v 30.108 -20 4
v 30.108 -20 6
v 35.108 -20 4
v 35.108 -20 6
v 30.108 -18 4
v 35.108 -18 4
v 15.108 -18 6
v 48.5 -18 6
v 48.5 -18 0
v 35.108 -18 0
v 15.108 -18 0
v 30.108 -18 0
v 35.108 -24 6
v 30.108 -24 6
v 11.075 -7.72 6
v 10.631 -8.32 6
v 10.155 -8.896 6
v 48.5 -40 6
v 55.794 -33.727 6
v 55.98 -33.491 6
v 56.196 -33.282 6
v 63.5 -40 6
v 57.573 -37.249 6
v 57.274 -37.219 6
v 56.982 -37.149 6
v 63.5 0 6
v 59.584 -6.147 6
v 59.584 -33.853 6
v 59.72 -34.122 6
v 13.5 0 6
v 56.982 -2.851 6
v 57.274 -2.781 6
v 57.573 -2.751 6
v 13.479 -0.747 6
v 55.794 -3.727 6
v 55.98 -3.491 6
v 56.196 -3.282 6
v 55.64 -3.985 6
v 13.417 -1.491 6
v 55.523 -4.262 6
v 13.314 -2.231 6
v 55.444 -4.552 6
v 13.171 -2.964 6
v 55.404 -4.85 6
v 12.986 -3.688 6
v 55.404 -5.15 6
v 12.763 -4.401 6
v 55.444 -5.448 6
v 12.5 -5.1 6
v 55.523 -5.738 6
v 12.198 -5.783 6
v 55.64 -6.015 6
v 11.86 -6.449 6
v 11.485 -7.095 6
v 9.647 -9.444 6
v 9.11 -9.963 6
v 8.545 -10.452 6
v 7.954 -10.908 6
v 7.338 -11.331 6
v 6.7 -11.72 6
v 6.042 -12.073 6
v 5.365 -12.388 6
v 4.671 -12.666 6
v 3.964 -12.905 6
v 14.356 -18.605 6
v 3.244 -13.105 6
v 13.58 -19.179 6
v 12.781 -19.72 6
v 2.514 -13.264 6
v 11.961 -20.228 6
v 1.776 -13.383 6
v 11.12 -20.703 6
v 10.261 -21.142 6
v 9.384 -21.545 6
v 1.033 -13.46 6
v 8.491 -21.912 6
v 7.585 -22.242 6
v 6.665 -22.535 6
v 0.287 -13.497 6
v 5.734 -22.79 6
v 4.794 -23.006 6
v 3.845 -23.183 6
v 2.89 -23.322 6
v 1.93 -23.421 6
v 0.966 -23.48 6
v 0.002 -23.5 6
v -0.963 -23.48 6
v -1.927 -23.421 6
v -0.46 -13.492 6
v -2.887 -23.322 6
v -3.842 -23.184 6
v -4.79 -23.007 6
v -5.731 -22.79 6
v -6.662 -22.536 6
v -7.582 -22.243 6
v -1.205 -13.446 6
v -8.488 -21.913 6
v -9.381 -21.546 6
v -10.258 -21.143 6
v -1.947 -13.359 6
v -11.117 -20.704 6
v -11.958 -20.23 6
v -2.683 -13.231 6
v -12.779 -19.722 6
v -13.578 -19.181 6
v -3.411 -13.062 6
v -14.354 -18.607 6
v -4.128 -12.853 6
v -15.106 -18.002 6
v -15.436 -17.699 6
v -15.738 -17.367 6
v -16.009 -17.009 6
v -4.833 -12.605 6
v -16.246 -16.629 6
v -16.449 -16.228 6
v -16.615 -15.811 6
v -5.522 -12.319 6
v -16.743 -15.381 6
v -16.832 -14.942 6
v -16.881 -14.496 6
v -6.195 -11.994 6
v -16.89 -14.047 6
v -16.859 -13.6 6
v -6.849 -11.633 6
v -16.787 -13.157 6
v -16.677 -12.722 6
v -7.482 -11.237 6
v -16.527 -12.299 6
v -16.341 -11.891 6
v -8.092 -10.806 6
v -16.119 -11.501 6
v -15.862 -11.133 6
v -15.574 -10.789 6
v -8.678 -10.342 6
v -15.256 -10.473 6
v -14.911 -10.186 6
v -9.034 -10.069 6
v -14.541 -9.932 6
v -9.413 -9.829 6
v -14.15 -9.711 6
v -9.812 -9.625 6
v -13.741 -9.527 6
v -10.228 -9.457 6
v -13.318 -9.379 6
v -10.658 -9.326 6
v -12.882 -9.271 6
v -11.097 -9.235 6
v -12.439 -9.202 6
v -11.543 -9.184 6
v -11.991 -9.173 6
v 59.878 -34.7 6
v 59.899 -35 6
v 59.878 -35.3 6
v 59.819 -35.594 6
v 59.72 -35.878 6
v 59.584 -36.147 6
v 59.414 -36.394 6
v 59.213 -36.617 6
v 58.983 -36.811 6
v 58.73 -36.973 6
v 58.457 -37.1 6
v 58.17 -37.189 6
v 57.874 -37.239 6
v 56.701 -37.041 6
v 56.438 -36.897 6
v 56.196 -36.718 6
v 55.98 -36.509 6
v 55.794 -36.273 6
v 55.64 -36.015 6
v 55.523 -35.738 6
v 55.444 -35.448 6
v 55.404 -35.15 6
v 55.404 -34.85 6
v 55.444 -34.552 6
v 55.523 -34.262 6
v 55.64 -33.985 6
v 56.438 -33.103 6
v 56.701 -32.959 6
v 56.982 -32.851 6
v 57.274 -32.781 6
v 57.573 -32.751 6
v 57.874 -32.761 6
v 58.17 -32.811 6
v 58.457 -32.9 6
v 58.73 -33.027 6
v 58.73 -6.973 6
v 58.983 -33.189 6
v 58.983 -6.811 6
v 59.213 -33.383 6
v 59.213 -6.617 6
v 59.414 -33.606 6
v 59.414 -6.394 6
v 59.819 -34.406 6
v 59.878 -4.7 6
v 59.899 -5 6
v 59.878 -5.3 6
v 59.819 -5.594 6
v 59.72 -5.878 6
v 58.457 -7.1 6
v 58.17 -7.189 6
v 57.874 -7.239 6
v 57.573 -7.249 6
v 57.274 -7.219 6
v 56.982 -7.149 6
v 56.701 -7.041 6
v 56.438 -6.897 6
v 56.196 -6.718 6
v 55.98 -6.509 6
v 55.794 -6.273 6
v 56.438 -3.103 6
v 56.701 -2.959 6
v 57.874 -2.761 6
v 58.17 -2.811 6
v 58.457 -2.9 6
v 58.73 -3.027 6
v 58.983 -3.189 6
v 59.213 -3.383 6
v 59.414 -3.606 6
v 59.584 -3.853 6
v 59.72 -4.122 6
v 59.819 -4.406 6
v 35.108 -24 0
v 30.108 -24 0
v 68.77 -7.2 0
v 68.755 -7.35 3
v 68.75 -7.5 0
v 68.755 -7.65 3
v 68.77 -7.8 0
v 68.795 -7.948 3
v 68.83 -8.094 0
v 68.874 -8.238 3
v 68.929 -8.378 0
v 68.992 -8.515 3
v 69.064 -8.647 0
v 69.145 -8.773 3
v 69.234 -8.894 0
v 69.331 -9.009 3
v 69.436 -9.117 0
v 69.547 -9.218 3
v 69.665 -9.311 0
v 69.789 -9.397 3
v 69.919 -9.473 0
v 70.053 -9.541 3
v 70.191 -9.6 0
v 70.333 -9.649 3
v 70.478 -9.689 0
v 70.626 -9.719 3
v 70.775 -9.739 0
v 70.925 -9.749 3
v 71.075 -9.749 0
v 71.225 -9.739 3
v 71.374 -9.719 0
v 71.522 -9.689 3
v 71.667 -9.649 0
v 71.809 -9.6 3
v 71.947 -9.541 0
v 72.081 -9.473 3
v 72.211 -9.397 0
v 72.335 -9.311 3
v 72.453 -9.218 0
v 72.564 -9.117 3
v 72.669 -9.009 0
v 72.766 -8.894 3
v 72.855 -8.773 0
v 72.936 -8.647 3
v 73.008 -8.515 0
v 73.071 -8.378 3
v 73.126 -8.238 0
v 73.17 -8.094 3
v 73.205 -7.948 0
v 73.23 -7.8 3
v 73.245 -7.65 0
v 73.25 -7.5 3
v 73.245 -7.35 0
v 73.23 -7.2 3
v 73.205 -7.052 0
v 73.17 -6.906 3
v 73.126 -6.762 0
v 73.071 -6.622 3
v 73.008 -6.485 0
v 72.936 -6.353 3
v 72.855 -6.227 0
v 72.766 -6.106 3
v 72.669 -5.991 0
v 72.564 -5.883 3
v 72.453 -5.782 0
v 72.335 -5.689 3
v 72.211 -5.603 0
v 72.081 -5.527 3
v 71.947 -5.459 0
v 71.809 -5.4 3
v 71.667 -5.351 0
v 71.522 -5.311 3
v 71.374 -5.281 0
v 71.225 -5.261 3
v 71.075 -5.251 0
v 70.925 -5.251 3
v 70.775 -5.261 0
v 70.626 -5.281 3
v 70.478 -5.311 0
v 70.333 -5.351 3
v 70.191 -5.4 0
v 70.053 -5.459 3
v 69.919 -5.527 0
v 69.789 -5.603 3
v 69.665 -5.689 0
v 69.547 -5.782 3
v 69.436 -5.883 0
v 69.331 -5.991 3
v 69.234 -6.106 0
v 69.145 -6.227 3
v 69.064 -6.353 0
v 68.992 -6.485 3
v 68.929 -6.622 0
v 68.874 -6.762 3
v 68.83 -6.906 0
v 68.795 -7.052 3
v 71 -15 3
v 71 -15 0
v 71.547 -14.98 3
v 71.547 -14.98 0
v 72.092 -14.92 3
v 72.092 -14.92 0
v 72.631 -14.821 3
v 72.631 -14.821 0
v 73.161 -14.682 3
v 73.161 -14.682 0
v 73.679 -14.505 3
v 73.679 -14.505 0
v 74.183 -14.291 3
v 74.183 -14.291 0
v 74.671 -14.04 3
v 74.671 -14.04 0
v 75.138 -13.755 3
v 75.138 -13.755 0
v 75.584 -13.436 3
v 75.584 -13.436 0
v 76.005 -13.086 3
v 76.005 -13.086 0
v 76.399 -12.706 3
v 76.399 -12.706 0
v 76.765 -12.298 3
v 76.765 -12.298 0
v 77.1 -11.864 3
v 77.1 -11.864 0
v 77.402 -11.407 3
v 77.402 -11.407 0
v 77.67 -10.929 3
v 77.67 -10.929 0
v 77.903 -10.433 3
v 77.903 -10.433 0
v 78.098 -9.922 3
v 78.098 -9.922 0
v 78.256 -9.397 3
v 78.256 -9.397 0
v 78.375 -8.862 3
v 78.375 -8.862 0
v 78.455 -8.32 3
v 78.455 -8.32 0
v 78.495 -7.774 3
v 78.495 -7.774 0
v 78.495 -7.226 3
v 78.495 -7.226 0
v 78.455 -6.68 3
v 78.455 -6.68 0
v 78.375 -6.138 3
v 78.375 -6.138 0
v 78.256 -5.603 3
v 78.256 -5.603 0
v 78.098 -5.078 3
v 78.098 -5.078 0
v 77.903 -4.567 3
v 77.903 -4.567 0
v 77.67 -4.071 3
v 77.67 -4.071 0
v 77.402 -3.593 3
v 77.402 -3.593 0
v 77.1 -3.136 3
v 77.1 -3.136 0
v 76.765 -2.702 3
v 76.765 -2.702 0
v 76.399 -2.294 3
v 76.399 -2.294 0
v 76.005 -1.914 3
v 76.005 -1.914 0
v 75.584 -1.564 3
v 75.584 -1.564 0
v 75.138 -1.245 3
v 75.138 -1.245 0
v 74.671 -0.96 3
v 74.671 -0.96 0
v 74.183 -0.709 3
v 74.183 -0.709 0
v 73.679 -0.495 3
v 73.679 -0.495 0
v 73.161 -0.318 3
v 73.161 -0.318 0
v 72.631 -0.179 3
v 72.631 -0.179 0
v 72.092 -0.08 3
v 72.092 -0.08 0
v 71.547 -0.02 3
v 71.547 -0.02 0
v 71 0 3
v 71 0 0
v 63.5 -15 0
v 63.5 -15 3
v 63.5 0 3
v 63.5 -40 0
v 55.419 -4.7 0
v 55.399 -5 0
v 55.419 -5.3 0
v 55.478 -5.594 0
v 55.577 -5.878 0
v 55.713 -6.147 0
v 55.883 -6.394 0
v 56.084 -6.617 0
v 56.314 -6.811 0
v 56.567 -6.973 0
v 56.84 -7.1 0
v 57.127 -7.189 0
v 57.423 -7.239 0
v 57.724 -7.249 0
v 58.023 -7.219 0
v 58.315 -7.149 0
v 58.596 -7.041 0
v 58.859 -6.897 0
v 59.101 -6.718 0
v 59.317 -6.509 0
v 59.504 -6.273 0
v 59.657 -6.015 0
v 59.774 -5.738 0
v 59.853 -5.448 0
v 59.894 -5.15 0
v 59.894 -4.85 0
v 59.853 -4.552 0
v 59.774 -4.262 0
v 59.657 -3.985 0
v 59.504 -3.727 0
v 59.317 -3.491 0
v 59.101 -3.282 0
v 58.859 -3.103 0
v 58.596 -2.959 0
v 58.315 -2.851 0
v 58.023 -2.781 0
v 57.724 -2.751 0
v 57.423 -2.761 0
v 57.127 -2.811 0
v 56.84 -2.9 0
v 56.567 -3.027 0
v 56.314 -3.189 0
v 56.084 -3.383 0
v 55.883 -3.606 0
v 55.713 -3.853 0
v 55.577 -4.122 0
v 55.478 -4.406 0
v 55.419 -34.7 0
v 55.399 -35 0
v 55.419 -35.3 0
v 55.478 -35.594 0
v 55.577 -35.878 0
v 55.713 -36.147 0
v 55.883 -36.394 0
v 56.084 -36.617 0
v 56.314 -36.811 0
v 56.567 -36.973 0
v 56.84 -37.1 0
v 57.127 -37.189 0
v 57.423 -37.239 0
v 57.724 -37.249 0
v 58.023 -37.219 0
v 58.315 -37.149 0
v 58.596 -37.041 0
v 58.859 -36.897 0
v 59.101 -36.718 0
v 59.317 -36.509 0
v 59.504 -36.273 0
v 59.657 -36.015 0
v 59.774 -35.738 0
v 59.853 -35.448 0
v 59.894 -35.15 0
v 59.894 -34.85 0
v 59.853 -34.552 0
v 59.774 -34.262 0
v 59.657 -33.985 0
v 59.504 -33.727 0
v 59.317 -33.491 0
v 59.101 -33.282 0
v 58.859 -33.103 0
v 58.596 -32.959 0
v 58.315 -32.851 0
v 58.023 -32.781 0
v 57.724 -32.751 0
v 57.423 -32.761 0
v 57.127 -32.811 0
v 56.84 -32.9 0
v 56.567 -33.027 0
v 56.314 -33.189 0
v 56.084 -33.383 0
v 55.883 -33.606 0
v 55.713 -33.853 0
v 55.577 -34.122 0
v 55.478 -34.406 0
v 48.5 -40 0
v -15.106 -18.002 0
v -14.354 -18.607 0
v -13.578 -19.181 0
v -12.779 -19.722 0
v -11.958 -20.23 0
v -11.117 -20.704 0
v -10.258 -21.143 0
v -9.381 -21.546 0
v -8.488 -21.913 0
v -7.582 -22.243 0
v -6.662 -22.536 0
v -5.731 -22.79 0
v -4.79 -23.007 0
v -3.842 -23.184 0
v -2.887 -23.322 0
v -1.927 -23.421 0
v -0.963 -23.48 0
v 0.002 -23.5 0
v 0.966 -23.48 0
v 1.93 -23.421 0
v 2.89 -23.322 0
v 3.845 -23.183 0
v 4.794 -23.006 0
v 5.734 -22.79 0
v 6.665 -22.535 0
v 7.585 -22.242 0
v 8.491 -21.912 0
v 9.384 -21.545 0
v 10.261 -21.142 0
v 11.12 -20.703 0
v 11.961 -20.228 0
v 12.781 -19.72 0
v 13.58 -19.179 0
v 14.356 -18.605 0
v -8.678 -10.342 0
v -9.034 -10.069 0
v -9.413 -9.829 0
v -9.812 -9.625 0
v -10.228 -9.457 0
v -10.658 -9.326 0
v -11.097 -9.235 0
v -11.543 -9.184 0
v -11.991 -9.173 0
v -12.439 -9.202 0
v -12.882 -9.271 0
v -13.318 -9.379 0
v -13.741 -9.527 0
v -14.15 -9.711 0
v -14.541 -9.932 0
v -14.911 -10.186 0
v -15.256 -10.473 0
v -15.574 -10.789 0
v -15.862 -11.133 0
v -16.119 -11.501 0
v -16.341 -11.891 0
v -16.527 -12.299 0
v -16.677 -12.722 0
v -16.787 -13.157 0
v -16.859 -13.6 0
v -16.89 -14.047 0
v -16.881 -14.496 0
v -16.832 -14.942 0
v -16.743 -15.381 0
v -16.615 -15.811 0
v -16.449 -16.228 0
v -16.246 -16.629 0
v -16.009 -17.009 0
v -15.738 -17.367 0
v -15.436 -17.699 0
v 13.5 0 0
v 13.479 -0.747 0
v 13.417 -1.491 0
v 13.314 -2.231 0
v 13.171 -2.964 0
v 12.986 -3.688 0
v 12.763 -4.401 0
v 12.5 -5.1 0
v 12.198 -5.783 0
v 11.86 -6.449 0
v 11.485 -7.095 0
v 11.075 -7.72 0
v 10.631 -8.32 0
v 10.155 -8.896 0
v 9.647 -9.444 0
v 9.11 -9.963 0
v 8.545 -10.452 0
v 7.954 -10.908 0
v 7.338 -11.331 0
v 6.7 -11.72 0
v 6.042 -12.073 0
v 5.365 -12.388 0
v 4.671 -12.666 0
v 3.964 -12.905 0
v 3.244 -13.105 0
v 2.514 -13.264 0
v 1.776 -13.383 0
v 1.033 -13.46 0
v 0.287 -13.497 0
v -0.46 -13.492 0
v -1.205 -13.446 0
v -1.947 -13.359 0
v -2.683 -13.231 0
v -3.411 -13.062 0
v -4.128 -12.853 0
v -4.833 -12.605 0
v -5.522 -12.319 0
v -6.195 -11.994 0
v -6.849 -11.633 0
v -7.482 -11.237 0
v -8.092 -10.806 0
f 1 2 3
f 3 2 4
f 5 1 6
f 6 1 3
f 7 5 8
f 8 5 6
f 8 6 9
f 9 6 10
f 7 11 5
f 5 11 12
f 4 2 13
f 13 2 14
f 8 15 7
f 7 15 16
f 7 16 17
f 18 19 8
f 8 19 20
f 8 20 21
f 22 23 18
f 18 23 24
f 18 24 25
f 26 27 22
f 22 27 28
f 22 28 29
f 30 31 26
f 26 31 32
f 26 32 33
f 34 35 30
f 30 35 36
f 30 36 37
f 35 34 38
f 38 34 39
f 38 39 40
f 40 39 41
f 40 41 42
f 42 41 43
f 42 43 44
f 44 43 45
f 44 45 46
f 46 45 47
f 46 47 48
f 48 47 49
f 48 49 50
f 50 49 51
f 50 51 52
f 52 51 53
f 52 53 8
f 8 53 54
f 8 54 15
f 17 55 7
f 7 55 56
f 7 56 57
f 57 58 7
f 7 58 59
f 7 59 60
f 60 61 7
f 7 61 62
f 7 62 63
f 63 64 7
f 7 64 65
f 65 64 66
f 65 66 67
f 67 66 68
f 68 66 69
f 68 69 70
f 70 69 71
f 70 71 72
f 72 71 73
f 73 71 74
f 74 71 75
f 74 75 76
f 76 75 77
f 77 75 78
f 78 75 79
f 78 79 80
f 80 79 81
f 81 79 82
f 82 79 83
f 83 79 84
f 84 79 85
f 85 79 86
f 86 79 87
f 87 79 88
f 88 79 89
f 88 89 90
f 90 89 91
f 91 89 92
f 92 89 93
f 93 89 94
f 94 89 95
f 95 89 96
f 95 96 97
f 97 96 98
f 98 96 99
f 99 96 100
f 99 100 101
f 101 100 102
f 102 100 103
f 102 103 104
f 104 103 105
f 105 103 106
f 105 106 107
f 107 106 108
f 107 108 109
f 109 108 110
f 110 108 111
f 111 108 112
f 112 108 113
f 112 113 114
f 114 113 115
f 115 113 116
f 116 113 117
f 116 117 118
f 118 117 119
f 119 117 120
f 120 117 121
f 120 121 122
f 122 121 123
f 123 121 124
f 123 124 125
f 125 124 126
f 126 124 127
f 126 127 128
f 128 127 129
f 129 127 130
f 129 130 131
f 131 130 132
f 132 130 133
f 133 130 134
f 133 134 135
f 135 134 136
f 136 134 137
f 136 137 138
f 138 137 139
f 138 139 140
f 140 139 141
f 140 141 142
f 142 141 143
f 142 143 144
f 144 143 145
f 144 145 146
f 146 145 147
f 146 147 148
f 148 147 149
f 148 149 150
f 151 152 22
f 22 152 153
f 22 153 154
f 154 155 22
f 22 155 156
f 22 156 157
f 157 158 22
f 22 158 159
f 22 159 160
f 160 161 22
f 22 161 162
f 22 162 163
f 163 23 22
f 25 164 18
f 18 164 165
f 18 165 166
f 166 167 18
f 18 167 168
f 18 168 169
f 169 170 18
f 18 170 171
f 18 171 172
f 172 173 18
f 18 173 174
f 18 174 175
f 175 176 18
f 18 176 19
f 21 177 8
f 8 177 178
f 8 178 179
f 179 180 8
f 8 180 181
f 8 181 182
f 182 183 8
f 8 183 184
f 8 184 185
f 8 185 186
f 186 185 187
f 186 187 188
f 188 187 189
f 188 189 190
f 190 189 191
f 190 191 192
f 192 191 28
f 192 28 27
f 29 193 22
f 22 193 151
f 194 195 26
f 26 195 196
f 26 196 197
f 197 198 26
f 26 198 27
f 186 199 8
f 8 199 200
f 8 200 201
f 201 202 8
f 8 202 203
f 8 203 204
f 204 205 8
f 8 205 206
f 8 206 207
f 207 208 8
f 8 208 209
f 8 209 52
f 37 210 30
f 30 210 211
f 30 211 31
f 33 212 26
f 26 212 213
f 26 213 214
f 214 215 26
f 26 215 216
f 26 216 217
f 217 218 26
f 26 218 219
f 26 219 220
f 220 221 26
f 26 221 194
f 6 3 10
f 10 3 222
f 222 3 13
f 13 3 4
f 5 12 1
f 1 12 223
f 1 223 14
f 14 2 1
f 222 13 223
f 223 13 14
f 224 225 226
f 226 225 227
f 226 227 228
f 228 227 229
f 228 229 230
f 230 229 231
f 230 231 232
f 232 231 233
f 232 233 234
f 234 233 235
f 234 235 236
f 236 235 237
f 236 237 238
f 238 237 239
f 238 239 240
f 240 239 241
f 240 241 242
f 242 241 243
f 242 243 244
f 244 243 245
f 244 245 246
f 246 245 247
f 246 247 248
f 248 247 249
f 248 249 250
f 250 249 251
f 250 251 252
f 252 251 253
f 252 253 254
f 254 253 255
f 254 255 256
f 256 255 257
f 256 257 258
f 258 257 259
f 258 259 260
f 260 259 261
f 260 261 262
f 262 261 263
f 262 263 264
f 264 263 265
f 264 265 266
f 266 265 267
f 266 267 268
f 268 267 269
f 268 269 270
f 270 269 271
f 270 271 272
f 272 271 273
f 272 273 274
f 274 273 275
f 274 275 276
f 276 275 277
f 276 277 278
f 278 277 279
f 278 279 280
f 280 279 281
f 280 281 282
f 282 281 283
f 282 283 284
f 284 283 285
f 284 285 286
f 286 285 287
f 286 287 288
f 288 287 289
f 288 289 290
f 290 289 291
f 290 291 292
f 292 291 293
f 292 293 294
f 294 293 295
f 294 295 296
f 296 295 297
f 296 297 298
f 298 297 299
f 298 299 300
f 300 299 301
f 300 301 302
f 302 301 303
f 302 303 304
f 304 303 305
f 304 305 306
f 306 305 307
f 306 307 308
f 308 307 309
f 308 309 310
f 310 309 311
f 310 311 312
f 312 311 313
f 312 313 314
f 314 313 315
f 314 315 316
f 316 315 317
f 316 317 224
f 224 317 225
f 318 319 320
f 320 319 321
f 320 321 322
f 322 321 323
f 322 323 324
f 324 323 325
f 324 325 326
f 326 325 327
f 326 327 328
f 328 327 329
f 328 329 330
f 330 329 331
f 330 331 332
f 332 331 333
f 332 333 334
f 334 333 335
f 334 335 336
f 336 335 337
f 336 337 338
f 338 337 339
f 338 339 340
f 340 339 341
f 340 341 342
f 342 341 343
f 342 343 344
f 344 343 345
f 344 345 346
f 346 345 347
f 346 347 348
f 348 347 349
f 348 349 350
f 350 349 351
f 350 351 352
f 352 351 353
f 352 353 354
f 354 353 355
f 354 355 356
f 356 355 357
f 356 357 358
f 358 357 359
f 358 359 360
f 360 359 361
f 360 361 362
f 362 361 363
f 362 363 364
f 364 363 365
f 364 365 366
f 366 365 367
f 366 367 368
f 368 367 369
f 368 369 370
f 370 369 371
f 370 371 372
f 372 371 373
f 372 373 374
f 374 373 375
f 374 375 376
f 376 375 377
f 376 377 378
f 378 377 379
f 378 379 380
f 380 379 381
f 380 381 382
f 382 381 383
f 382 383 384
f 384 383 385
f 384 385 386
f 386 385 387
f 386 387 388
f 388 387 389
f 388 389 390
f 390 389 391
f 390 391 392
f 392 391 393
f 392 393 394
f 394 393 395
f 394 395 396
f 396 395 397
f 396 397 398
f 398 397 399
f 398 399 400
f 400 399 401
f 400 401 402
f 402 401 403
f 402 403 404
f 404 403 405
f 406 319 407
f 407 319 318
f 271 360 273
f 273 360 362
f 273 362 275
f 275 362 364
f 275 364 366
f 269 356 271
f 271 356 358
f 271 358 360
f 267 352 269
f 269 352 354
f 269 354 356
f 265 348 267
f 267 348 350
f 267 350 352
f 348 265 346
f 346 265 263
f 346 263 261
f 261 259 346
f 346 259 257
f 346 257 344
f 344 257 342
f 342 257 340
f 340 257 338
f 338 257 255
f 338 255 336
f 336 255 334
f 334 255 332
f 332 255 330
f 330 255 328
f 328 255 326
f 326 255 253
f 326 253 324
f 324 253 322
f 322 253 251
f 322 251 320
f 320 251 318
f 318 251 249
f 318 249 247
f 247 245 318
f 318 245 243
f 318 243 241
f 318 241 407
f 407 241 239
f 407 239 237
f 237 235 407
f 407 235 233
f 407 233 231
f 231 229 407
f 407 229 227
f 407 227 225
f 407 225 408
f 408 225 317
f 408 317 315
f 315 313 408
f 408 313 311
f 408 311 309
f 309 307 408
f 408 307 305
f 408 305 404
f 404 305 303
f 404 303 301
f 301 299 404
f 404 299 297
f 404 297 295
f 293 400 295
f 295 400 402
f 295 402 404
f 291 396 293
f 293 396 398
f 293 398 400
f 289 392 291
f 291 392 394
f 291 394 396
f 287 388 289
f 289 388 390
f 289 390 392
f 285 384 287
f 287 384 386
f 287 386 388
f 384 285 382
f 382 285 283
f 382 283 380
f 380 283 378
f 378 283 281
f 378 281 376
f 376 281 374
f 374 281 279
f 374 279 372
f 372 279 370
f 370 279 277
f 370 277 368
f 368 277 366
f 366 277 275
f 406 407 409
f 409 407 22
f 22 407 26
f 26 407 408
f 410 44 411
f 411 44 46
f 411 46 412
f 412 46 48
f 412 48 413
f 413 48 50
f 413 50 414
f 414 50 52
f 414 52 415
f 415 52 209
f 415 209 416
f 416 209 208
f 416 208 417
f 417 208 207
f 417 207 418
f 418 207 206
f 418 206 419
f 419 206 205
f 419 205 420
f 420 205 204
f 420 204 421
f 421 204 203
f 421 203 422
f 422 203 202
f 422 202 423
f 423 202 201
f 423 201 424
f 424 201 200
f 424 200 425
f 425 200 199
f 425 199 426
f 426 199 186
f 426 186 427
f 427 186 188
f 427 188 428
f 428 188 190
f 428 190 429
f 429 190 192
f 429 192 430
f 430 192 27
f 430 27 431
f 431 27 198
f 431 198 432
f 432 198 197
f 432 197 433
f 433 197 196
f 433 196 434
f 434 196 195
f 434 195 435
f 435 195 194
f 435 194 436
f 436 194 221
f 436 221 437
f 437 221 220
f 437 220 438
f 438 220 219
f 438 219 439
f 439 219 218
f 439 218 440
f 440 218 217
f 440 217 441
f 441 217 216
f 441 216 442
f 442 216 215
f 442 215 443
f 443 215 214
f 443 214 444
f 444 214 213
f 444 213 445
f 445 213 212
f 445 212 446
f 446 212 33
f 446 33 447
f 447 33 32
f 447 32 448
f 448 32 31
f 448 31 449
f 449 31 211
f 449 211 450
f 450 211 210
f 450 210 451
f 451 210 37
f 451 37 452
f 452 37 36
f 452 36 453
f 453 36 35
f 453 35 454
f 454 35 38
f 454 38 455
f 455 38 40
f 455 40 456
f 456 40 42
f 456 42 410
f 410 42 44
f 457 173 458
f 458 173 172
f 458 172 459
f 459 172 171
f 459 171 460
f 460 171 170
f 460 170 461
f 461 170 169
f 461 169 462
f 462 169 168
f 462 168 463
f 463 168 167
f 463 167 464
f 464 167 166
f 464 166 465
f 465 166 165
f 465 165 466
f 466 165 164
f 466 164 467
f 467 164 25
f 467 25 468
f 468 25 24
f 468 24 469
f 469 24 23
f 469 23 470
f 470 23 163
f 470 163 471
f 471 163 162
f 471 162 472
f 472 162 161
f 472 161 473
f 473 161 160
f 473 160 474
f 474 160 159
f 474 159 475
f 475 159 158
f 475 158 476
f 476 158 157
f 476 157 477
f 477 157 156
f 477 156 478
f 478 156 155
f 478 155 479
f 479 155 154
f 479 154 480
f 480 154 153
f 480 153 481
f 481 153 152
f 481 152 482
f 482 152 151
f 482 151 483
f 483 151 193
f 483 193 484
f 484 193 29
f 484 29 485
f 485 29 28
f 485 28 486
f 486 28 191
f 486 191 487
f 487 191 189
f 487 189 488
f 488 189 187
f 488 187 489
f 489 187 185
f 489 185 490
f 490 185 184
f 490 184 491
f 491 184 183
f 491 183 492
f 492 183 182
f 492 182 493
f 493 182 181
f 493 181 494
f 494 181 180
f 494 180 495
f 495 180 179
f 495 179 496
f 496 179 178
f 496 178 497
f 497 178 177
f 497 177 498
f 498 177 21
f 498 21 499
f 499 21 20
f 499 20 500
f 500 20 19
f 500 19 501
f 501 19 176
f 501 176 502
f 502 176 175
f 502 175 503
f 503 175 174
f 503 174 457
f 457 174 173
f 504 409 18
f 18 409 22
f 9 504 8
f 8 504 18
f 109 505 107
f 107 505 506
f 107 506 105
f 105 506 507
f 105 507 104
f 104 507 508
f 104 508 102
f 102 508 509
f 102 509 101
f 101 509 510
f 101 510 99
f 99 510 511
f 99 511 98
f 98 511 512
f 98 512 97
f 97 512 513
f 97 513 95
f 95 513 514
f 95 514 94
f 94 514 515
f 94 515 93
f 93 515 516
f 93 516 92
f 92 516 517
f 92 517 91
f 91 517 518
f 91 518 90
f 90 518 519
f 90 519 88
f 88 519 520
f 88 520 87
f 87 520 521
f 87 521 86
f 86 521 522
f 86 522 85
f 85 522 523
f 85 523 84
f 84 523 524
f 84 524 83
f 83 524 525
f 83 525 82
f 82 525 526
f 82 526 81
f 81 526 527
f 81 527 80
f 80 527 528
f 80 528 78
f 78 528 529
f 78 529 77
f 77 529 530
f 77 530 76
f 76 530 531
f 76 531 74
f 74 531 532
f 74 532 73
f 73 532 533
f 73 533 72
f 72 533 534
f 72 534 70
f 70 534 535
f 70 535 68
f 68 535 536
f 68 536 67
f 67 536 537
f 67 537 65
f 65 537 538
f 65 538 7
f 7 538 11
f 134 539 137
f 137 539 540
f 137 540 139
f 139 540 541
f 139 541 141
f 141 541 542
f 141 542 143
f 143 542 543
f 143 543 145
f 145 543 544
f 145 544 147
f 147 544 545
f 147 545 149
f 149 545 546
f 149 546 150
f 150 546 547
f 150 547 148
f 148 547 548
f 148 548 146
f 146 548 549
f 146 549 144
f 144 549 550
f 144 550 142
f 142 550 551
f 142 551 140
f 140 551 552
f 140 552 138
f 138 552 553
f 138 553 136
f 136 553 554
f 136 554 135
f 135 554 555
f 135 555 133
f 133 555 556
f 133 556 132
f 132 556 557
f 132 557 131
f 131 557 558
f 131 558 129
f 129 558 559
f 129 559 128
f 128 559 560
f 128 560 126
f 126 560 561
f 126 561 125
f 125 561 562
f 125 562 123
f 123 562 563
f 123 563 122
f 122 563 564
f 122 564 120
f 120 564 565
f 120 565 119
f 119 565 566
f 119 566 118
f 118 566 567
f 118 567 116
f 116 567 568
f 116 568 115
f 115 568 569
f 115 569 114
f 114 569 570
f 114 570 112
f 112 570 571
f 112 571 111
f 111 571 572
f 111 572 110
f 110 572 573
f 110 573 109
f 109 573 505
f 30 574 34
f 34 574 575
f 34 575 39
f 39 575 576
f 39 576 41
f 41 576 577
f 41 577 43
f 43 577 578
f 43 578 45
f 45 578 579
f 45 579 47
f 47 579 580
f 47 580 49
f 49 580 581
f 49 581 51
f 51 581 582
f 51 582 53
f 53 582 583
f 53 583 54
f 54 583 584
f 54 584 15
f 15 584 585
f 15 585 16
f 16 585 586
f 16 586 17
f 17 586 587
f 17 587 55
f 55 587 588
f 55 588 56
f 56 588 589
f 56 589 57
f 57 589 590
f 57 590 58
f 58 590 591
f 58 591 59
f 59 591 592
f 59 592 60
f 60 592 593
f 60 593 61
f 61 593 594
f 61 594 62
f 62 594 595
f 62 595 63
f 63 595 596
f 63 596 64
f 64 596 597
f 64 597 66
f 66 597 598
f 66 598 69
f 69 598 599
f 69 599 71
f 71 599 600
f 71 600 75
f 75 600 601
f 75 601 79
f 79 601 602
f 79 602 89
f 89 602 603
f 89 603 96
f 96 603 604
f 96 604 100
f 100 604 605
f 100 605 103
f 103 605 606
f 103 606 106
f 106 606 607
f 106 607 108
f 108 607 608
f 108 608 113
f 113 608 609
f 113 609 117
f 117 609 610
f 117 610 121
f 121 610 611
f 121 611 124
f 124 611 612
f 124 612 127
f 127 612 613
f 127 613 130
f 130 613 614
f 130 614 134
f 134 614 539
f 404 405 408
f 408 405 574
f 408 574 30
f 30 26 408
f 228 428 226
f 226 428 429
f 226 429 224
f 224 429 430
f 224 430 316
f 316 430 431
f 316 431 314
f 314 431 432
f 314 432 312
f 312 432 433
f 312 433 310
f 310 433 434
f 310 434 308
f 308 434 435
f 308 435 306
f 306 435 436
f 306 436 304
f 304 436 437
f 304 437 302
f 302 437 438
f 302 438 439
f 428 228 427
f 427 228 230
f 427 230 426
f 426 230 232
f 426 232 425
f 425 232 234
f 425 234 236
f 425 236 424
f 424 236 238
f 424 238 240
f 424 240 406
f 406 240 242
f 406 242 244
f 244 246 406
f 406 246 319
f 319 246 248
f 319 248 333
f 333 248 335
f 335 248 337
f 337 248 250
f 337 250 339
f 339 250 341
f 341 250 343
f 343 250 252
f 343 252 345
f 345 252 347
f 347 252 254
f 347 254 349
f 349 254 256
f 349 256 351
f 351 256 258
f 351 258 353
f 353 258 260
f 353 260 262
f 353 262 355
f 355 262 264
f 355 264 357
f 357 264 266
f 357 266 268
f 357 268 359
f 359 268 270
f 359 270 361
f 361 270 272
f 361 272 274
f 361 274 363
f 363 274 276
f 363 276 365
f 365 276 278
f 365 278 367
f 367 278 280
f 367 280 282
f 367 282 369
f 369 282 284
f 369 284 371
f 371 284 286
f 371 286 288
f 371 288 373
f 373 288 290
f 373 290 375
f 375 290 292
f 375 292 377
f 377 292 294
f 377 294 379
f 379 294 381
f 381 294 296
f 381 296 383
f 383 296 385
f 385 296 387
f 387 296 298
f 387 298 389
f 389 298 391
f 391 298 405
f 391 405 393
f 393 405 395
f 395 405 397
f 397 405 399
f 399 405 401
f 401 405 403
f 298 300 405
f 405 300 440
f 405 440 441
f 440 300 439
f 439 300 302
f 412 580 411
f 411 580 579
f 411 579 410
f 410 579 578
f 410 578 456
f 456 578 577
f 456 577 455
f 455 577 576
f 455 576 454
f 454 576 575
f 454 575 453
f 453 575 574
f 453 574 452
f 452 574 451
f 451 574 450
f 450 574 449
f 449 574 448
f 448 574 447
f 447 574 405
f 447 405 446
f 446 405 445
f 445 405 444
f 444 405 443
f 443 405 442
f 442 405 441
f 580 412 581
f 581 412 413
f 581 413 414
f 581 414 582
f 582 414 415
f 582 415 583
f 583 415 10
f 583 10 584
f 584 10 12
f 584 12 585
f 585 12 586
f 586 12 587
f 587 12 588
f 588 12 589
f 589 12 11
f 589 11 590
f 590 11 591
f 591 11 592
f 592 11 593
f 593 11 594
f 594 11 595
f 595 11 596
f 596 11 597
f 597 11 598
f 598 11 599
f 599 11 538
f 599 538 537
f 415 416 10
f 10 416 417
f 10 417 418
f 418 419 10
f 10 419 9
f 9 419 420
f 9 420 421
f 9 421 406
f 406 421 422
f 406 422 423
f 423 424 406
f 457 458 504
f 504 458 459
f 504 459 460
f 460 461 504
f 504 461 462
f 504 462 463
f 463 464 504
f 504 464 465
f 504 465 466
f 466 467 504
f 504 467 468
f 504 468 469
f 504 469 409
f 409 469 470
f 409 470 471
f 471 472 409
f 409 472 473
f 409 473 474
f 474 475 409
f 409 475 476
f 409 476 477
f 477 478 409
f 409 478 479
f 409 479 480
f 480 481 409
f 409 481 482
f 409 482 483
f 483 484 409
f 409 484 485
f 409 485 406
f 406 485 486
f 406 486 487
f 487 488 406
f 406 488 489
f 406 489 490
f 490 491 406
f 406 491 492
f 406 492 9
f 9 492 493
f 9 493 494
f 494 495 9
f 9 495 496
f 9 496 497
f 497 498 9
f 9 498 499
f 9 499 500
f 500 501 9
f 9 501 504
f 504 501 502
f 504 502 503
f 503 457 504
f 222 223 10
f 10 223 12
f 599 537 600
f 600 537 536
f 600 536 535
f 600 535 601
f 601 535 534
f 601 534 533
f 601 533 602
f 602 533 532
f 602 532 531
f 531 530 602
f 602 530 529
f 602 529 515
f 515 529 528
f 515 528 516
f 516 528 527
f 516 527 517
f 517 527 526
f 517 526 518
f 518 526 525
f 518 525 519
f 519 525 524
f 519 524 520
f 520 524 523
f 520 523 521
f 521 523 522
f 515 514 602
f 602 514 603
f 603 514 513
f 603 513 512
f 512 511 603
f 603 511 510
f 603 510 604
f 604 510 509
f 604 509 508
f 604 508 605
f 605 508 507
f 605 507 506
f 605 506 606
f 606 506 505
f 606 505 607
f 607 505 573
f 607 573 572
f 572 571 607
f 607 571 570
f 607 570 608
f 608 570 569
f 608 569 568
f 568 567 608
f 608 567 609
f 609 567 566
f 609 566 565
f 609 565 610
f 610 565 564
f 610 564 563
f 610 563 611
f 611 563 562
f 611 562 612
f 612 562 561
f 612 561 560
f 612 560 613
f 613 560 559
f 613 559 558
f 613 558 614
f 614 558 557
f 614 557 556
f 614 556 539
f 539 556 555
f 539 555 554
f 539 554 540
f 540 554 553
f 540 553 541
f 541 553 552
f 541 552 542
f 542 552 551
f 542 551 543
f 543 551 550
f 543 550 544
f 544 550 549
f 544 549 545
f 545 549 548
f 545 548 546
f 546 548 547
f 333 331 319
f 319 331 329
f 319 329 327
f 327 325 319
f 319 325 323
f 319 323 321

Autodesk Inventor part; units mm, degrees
ref_plane "YZ Plane" through (0, 0, 0) normal (1, 0, 0) x (0, 1, 0)
ref_plane "XZ Plane" through (0, 0, 0) normal (0, 1, 0) x (-1, 0, 0)
ref_plane "XY Plane" through (0, 0, 0) normal (0, 0, 1) x (1, 0, 0)
sketch "スケッチ6" plane through (0, 0, 0) normal (0, 0, 1) x (1, 0, 0)
  circle A0 centre (0, 0) radius 13.5
  circle A1 centre (0, 0) radius 23.5
  circle A2 centre (-11.8916, -14.1718) radius 5
  line L0 (0, 0) -> (-11.8916, -14.1718)
  line L1 (0, 0) -> (0, -23.5)
  line L2 (13.5, 0) -> (63.5, 0)
  line L3 (63.5, 0) -> (63.5, -18)
  line L4 (63.5, -18) -> (13.5, -18)
  line L5 (13.5, -18) -> (13.5, 0)
  line L6 (48.5, 0) -> (63.5, 0)
  line L7 (63.5, 0) -> (63.5, -40)
  line L8 (63.5, -40) -> (48.5, -40)
  line L9 (48.5, -40) -> (48.5, 0)
  point P0 (-15.1055, -18.002)
  point P1 (48.5, -18)
  point P2 (-8.6776, -10.3416)
  point P3 (23.5, 0)
  point P4 (13.3373, -19.3486)
  point P5 (13.4479, -1.1846)
  point P6 (23.5, 0)
  point P7 (15.1079, -18)
  dimension "d31" = 27
  dimension "d32" = 47
  dimension "d33" = 10
  dimension "d34" = 40
  dimension "d35" = 50
  dimension "d36" = 18
  dimension "d37" = 15
  dimension "d38" = 0
  dimension "d63" = 40
extrude "押し出し4" add sketch "スケッチ6" along normal blind 6 contours L5 L4 A1 L1 A0 | L2 A1 L4 L5 | A0 L1 A1 A2 | A2 | L2 L9 L4 A1 | L2 L3 L4 L9 | L4 L7 L8 L9
sketch "スケッチ9" plane through (0, 0, 6) normal (0, 0, 1) x (1, 0, 0)
  line L0 (48.5, -40) -> (63.5, -40) projected
  line L1 (63.5, 0) -> (13.5, 0) projected
  point P0 (0, 0)
  point P1 (57.6485, -5)
  point P2 (57.6485, -35)
  dimension "d54" = 5
  dimension "d64" = 5
hole "穴4" at (57.6485, -5, 6) at (57.6485, -35, 6) direction (0, 0, -1) diameter 4.5 end through all
sketch "スケッチ10" plane through (0, 0, 0) normal (0, 0, -1) x (-1, 0, 0)
  circle A0 centre (-71, -7.5) radius 7.5
  line L0 (-63.5, -40) -> (-63.5, 0) projected
  line L1 (-63.5, 0) -> (-13.5, 0) projected
  line L2 (-63.5, -40) -> (-63.5, 0) projected
  line L3 (-71, 0) -> (-63.5, 0)
  line L4 (-63.5, 0) -> (-63.5, -15)
  line L5 (-63.5, -15) -> (-71, -15)
  line L6 (-71, -15) -> (-71, 0)
  point P0 (0, 0)
  dimension "d65" = 15
extrude "押し出し6" add sketch "スケッチ10" against normal blind 3
sketch "スケッチ11" plane through (0, 0, 3) normal (0, 0, 1) x (1, 0, 0)
  arc A0 (71, -15) -> (71, 0) centre (71, -7.5) ccw projected
  point P0 (0, 0)
hole "穴5" at (71, -7.5, 3) direction (0, 0, -1) diameter 4.5 end through all
sketch "スケッチ12" plane through (15.1079, -18, 0) normal (0, -1, 0) x (1, 0, 0)
  line L0 (-1.6079, 0) -> (55.8921, 0) projected
  line L1 (48.3921, 6) -> (-1.6079, 6) projected
  line L2 (20, 0) -> (15, 0)
  line L3 (15, 0) -> (15, 6)
  line L4 (15, 6) -> (20, 6)
  line L5 (20, 6) -> (20, 0)
  line L6 (0, 0) -> (0, 6) projected
  point P0 (-15.1079, 0)
  point P1 (15, 0)
  dimension "d75" = 5
  dimension "d82" = 15
extrude "押し出し7" add sketch "スケッチ12" along normal blind 6 contours L3 L1 L5 L0
sketch "スケッチ13" plane through (35.1079, -18, 6) normal (1, 0, 0) x (0, 0, -1)
  line L0 (6, 0) -> (0, 0) projected
  line L1 (0, 0) -> (2, 0)
  line L2 (2, 0) -> (2, -2)
  line L3 (2, -2) -> (0, -2)
  line L4 (0, -2) -> (0, 0)
  point P0 (6, 18)
  dimension "d78" = 2
  dimension "d79" = 2
extrude "押し出し8" cut sketch "スケッチ13" against normal blind 6
properties part number "エアタンクペットボトル取付具"
